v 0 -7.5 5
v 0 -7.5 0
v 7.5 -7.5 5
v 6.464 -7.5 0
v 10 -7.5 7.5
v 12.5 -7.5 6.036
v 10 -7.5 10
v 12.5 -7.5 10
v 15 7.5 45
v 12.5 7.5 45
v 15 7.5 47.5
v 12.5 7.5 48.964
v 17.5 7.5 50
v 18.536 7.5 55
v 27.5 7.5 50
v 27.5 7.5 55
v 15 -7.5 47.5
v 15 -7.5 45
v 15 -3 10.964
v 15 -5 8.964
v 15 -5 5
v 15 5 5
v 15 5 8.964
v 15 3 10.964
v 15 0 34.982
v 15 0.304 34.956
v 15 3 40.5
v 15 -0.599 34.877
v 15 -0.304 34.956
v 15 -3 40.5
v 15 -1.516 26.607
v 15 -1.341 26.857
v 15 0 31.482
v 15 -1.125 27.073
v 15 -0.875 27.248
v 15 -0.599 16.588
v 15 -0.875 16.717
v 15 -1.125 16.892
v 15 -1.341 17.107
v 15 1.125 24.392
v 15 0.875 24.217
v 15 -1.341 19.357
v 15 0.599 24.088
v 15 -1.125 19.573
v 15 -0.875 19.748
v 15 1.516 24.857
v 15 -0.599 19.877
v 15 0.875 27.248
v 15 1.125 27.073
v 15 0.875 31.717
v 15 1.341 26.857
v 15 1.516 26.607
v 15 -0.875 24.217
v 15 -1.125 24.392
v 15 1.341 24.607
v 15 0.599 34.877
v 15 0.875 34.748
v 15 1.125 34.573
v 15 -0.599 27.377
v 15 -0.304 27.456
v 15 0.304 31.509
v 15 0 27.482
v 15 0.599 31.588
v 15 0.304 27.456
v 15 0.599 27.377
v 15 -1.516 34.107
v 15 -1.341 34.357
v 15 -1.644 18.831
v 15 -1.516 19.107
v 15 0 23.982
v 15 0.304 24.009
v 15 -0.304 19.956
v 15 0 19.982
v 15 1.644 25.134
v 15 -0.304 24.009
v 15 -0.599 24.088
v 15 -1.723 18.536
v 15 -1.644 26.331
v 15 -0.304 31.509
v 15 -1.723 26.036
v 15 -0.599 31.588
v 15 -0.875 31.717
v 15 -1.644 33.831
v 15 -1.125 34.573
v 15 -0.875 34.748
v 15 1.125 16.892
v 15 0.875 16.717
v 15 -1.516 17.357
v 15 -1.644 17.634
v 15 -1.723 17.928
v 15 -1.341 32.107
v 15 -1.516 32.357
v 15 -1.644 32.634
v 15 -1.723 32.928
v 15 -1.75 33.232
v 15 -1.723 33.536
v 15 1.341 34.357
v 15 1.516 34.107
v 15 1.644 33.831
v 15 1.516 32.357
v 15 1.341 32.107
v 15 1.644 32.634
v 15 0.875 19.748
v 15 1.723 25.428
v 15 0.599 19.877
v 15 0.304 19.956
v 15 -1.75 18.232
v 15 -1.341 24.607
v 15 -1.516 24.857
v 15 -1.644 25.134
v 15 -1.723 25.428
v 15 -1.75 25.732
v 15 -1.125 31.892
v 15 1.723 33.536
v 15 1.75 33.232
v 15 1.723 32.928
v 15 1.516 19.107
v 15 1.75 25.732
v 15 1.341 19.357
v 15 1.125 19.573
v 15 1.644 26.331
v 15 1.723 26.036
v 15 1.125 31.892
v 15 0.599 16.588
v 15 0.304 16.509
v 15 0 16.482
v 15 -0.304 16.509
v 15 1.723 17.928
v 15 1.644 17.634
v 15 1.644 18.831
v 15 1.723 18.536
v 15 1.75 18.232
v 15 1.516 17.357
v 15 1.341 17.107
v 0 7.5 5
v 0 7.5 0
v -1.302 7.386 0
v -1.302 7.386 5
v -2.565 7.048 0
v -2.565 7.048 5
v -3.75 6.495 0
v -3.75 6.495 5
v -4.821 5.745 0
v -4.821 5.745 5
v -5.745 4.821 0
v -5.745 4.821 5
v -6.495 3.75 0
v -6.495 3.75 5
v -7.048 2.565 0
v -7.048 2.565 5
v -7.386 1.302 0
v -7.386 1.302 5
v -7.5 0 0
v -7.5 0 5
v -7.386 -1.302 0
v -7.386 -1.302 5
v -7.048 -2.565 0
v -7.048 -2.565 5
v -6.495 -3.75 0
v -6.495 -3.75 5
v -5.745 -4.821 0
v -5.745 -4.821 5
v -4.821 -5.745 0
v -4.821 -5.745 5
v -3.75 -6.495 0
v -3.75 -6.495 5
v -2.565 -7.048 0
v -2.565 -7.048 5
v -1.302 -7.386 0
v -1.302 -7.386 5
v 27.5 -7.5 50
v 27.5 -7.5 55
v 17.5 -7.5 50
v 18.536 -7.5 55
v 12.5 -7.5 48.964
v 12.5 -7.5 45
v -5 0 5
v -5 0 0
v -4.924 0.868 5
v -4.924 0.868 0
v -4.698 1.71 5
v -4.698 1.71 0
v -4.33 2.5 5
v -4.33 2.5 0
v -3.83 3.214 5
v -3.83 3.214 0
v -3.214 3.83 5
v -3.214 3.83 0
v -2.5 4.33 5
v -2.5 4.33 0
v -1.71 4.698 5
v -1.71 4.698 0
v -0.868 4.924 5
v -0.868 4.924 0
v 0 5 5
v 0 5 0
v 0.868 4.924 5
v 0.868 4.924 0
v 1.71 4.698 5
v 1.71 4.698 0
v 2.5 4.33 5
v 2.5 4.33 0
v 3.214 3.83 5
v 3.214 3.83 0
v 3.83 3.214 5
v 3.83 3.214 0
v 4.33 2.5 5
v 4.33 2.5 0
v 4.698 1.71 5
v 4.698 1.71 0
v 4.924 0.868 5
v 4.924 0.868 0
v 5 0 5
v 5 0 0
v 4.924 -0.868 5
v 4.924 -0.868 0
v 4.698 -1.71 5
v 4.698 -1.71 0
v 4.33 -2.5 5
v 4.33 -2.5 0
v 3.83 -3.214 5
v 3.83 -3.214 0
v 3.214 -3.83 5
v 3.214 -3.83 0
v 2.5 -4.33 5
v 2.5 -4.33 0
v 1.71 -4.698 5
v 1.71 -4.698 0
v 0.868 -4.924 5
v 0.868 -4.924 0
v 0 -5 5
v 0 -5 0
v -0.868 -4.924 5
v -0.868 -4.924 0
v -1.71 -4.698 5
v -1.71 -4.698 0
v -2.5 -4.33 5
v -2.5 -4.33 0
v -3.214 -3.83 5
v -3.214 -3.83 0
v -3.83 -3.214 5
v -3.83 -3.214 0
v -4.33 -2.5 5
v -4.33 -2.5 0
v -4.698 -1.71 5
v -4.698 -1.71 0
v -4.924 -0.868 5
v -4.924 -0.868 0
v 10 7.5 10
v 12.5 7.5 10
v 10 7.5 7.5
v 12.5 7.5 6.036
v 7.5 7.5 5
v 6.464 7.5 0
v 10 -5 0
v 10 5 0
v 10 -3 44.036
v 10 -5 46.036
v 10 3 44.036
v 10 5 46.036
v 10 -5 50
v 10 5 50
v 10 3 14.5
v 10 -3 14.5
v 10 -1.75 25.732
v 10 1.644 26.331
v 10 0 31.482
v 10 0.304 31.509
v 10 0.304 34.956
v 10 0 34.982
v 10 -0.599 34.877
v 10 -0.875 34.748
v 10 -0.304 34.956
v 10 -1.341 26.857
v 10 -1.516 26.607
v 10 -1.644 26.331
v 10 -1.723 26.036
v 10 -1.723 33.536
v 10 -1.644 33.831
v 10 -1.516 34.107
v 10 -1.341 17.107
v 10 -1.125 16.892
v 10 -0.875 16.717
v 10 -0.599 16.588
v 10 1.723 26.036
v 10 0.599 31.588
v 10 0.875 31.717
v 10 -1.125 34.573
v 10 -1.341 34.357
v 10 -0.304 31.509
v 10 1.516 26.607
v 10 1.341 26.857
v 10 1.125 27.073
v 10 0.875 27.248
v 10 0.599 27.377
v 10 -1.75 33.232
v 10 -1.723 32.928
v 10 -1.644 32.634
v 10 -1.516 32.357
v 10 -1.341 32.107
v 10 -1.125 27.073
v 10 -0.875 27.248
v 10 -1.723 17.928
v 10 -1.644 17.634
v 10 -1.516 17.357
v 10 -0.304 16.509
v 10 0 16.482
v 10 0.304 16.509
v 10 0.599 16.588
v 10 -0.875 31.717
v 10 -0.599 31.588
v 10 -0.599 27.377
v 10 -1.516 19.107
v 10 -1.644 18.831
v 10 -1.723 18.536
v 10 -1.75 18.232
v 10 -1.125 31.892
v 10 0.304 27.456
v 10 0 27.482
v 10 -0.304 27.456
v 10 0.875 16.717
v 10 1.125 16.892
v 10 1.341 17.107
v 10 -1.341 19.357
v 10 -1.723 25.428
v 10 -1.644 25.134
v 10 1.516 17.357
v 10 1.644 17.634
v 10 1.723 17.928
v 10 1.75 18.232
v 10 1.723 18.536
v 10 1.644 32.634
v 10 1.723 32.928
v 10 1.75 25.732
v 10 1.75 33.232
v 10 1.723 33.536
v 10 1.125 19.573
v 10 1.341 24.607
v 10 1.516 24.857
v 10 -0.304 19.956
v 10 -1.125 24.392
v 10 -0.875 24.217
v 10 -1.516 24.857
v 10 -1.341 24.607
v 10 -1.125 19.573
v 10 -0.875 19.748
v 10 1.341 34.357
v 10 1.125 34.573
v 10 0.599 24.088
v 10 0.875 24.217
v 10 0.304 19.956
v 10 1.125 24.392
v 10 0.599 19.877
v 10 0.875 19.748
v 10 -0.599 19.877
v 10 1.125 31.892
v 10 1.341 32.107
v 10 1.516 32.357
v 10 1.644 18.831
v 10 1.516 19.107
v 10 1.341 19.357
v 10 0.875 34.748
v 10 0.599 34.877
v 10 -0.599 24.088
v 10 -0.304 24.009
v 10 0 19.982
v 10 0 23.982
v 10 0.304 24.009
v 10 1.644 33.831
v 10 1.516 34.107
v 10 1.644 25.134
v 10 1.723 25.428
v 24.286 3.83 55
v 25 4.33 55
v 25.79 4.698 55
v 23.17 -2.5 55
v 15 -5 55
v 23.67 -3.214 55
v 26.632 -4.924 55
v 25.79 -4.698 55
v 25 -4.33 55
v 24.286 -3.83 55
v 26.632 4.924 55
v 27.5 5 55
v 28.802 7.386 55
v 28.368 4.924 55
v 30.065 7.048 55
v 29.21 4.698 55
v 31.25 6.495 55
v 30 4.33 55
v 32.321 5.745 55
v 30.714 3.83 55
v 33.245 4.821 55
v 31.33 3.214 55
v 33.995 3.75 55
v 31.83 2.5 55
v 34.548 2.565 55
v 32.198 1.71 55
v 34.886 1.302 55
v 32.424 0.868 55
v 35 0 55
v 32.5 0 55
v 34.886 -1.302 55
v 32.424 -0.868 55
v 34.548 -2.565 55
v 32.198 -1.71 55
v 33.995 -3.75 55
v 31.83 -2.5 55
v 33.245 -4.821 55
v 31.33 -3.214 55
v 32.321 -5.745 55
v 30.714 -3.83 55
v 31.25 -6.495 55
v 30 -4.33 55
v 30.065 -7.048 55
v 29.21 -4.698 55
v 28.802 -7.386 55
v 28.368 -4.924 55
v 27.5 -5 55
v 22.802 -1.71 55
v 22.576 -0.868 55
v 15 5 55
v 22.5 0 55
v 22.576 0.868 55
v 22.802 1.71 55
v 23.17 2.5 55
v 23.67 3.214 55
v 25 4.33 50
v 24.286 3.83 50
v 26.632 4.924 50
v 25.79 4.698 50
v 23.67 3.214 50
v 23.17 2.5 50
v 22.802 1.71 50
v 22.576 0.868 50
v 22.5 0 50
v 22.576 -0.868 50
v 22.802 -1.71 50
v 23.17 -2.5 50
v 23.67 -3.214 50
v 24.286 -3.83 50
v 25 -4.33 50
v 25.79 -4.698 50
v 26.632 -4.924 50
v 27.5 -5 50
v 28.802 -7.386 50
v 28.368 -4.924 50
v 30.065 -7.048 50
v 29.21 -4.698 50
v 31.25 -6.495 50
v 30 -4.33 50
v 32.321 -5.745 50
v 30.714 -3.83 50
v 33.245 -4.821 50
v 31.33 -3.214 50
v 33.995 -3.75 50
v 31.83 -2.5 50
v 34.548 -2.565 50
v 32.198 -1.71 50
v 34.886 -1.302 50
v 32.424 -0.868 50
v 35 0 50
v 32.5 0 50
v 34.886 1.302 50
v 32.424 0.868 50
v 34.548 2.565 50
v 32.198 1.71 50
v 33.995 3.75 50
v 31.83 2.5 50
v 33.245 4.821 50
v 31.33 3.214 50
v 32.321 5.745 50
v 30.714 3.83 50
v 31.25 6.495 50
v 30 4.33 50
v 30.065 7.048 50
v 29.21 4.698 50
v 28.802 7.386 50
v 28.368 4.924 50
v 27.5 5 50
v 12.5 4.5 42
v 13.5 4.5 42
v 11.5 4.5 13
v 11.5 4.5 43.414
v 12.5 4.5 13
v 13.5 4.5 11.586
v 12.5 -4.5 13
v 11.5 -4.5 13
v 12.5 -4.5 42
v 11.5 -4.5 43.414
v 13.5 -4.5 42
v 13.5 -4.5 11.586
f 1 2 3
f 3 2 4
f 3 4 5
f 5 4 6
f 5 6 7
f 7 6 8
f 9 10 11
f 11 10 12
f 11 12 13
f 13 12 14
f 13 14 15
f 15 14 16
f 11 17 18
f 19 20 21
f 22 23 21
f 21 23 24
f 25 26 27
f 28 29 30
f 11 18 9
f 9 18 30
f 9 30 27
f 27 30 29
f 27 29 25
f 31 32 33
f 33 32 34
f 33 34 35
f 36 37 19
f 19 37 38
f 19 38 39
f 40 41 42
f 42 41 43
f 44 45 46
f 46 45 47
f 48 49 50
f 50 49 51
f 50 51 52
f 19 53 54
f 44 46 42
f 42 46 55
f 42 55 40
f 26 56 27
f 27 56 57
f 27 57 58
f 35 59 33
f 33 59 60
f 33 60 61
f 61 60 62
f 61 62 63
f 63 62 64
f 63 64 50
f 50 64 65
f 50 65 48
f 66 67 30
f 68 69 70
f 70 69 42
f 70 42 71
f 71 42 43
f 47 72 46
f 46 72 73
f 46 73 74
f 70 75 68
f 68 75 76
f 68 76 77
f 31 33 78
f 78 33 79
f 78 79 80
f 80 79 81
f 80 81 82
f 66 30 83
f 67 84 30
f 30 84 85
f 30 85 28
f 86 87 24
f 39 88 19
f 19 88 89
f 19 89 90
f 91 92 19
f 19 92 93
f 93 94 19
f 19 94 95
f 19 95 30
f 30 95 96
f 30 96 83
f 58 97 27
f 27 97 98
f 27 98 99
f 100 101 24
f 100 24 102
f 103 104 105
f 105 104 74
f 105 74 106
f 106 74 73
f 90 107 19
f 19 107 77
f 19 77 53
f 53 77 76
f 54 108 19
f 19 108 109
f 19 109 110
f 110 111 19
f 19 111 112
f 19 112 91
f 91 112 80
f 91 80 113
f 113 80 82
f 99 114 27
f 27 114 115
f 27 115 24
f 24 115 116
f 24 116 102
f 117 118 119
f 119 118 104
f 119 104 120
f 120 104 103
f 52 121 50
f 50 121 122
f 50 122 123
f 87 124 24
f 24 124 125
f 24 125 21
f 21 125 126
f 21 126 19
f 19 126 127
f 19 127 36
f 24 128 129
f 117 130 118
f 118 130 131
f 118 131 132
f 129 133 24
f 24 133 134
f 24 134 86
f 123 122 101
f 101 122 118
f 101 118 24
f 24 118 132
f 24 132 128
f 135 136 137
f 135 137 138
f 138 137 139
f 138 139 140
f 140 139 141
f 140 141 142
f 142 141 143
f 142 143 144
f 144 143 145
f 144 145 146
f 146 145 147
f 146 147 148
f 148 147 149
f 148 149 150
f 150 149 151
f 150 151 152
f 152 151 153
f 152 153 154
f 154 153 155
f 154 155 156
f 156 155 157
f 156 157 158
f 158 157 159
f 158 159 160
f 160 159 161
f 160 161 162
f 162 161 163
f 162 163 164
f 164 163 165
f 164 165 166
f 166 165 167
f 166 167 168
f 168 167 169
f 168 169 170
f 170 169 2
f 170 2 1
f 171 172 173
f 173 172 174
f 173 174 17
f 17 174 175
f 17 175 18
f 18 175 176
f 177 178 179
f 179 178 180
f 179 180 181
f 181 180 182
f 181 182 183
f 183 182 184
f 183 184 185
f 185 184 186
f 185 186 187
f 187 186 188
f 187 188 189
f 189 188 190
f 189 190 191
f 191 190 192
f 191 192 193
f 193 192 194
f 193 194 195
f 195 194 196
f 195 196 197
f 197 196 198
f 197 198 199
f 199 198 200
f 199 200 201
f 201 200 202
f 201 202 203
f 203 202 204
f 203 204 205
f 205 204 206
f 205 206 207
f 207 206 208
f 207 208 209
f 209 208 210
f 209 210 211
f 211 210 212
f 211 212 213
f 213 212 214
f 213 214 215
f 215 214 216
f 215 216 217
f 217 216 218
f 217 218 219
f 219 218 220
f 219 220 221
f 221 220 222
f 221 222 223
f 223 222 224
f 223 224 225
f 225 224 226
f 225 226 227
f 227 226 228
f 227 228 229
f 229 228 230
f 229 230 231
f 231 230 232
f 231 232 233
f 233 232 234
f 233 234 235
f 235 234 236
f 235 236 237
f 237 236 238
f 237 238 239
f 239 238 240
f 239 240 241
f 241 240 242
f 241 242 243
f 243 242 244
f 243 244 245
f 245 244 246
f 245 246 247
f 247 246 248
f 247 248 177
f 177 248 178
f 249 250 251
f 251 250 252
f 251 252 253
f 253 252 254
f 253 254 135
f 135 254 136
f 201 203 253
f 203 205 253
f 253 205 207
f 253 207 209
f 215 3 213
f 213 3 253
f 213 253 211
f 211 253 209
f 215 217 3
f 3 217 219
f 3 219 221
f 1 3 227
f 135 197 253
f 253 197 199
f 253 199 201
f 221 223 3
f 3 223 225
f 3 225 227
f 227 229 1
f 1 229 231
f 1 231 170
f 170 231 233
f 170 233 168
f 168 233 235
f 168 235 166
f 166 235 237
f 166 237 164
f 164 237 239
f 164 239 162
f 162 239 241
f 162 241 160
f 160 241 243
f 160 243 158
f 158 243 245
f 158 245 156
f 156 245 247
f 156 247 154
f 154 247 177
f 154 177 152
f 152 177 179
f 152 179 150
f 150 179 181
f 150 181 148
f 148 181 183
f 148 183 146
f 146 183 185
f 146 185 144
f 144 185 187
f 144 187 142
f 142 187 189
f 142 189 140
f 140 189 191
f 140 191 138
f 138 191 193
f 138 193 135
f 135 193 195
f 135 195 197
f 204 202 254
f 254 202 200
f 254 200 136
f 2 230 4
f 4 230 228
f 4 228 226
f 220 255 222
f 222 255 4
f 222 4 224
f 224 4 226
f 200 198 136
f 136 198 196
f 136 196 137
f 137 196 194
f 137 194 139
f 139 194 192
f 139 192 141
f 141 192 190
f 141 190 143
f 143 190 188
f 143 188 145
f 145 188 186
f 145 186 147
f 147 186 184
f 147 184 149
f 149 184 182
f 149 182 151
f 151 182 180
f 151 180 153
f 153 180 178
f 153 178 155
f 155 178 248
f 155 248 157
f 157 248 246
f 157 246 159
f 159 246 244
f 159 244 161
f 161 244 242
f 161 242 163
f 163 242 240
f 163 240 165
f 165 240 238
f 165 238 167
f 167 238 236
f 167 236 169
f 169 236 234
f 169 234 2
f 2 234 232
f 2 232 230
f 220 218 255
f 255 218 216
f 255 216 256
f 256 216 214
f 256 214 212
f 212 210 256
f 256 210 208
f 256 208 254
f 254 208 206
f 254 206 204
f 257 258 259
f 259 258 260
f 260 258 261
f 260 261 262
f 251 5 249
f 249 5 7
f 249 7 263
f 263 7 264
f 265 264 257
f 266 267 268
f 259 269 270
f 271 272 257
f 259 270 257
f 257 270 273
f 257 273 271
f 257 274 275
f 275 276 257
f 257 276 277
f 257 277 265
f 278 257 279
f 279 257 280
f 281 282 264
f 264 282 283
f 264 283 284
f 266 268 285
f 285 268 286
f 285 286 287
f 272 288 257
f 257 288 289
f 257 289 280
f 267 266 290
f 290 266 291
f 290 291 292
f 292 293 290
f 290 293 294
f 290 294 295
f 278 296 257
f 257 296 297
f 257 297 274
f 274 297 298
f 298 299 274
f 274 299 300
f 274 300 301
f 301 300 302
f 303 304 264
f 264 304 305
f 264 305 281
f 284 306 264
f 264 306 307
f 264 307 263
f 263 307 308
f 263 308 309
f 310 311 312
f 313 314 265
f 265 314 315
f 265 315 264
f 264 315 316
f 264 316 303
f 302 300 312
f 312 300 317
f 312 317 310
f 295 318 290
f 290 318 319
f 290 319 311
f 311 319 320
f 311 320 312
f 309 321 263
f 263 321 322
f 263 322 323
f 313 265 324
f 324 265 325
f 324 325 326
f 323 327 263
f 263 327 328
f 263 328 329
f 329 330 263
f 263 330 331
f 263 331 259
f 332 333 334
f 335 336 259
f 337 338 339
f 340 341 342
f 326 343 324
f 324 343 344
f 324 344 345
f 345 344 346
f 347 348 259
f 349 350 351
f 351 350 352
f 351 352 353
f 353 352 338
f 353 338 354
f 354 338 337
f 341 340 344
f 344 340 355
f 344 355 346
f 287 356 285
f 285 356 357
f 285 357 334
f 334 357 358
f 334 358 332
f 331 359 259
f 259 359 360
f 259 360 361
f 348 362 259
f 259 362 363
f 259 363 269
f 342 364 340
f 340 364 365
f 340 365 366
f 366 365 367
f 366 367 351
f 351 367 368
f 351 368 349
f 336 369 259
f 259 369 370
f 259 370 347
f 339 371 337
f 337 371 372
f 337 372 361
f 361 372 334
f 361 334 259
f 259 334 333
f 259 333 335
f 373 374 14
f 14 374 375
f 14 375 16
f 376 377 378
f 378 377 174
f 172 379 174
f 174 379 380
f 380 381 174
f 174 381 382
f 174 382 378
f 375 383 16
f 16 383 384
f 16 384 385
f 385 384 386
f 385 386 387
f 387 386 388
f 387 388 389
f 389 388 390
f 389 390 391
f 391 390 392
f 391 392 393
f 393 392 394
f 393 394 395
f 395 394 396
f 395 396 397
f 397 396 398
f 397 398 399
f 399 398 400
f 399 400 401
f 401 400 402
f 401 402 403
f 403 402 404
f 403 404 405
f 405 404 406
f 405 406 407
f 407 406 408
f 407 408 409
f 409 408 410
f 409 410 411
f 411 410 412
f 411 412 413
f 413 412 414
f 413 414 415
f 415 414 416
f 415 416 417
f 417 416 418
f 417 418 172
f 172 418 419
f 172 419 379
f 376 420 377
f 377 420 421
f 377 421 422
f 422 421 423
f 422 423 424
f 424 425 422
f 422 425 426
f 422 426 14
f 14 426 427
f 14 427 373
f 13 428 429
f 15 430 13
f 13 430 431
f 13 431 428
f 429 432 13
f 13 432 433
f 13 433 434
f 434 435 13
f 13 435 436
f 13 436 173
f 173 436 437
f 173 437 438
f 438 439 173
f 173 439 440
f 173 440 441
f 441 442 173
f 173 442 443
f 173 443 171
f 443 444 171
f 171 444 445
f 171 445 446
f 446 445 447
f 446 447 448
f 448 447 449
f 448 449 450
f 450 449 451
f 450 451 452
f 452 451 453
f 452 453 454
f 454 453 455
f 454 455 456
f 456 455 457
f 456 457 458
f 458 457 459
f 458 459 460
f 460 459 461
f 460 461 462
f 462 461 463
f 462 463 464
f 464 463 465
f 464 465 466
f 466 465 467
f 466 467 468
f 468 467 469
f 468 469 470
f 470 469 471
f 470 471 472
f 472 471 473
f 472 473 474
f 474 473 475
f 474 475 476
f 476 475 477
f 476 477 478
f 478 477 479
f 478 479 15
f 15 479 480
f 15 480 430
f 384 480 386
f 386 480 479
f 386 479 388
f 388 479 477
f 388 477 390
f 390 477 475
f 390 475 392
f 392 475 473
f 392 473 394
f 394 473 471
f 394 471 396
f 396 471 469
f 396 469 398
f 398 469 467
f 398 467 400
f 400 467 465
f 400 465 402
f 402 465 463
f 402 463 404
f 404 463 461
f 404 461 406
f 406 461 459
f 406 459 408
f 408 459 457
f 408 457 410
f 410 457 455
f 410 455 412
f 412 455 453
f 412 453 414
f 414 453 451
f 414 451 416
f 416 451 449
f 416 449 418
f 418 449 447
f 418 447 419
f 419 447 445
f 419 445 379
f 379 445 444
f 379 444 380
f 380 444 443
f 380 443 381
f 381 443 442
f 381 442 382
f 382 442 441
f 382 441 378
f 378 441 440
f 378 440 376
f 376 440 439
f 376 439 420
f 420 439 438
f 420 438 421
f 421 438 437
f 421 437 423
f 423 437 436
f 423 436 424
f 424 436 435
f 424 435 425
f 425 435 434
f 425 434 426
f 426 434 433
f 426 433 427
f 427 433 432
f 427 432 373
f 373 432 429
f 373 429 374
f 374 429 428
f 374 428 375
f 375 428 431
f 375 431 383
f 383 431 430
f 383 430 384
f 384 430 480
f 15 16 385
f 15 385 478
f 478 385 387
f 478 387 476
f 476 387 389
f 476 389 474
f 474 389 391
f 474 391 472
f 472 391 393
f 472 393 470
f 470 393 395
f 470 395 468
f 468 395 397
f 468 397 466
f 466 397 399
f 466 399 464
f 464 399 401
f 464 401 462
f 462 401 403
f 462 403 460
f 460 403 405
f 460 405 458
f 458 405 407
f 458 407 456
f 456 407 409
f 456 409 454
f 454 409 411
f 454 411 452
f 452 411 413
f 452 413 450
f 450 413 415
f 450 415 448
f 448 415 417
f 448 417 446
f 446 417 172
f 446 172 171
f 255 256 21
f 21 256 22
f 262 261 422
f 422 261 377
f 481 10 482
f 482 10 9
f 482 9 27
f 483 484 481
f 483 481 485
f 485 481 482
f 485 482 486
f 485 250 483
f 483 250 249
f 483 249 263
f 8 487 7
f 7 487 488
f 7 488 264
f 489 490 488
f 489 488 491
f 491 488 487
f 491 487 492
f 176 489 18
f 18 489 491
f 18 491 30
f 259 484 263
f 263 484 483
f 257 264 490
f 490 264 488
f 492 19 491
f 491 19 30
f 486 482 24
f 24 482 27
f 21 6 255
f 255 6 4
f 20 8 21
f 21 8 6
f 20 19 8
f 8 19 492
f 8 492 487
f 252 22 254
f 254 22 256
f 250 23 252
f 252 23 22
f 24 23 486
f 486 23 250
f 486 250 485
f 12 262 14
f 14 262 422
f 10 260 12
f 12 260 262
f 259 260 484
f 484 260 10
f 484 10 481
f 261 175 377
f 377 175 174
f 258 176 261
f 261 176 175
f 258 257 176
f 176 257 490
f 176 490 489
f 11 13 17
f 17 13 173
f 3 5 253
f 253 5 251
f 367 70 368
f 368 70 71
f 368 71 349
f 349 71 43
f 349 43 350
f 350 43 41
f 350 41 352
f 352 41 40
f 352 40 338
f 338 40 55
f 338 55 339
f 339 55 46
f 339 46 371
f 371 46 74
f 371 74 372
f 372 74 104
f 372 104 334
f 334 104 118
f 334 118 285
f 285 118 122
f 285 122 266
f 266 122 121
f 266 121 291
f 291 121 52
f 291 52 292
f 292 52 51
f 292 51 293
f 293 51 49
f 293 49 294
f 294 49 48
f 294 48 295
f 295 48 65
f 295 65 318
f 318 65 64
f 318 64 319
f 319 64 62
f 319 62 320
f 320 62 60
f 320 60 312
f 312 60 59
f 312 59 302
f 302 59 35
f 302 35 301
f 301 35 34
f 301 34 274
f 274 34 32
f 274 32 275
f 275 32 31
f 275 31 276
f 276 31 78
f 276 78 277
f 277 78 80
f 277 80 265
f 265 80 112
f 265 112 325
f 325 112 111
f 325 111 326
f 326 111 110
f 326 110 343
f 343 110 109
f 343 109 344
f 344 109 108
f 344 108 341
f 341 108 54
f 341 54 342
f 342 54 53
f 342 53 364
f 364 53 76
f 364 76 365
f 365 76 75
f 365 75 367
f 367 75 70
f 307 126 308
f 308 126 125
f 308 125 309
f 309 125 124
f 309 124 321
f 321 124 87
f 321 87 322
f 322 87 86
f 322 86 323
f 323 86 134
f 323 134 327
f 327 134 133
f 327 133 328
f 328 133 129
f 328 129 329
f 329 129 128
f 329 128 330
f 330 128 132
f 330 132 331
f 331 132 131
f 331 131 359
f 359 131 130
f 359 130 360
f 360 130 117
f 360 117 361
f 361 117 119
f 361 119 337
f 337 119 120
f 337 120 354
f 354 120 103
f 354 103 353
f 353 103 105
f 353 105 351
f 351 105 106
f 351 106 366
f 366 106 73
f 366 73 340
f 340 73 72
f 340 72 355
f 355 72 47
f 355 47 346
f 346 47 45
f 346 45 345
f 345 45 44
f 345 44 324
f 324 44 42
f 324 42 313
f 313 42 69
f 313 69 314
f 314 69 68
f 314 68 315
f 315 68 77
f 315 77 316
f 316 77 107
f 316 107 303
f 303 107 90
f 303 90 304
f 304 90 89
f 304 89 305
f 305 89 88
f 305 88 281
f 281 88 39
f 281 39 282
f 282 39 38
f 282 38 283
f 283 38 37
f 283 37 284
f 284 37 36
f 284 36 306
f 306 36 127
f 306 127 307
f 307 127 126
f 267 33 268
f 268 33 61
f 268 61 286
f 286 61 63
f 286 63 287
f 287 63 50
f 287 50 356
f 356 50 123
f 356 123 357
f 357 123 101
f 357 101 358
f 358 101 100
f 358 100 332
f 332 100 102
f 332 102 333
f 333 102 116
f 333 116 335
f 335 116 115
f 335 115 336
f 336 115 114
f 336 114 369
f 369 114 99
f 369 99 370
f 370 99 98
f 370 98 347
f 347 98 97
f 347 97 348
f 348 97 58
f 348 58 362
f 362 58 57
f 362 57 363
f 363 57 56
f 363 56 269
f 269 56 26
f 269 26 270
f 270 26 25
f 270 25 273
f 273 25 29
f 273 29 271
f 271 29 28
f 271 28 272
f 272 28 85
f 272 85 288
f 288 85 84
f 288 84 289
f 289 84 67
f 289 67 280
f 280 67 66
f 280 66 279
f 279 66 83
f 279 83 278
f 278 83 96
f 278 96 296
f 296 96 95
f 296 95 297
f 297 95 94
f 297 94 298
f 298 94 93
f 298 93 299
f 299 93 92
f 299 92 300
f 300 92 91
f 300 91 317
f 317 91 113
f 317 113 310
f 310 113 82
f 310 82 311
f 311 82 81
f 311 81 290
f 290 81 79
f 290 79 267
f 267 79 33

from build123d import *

# Parameters (mm, degrees)
SKETCH1_R           = 7.5
SKETCH1_R_2         = 5
BOSS_EXTRUDE1_DEPTH = 5
SKETCH2_W           = 5
SKETCH2_H           = 15
BOSS_EXTRUDE2_DEPTH = 50
SKETCH3_W           = 5
SKETCH3_H           = 15
BOSS_EXTRUDE3_DEPTH = 20
SKETCH4_R           = 5
CUT_EXTRUDE1_DEPTH  = 15
FILLET1_R           = 7.5
CHAMFER1_SIZE       = 5
CUT_EXTRUDE2_DEPTH  = 5
CHAMFER2_SIZE       = 1.5
CHAMFER3_SIZE       = 2.5
CHAMFER4_SIZE       = 2.5
SKETCH10_R          = 1.75
CUT_EXTRUDE4_DEPTH  = 10


with BuildPart() as part:
    # Sketch1 → Boss-Extrude1 (new body)
    # profile 1 of 2: a face of its own
    with BuildSketch(Plane.XY):
        Circle(SKETCH1_R)
        Circle(SKETCH1_R_2, mode=Mode.SUBTRACT)
    # profile 2 of 2: a face of its own
    with BuildSketch(Plane.XY):
        with BuildLine():
            Line((15, 7.5), (0, 7.5))
            ThreePointArc((0, 7.5), (5.303300859, 5.303300859), (7.5, 0))
            ThreePointArc((7.5, 0), (5.303300859, -5.303300859), (0, -7.5))
            Line((0, -7.5), (15, -7.5))
            Line((15, -7.5), (15, 7.5))
        make_face()
    extrude(amount=BOSS_EXTRUDE1_DEPTH)

    # Sketch2 → Boss-Extrude2 (add)
    with BuildSketch(Plane.XY.offset(5)):
        with Locations((12.5, 0)):
            Rectangle(SKETCH2_W, SKETCH2_H)
    extrude(amount=BOSS_EXTRUDE2_DEPTH)

    # Sketch3 → Boss-Extrude3 (add)
    with BuildSketch(Plane(origin=(15, 0, 0), x_dir=(0, 0, -1), z_dir=(1, 0, 0))):
        with Locations((-52.5, 0)):
            Rectangle(SKETCH3_W, SKETCH3_H)
    extrude(amount=BOSS_EXTRUDE3_DEPTH)

    # Sketch4 → Cut-Extrude1 (cut)
    with BuildSketch(Plane(origin=(0, 0, 50), x_dir=(-1, 0, 0), z_dir=(0, 0, -1))):
        with Locations(Location((-27.5, 0, 0), (0, 0, 90))):
            Circle(SKETCH4_R)
    extrude(amount=-CUT_EXTRUDE1_DEPTH, mode=Mode.SUBTRACT)

    # Fillet1
    fillet1_edges = [part.edges().sort_by_distance(p)[0] for p in [
        (35, -7.5, 52.5),
        (35, 7.5, 52.5),
    ]]
    fillet(fillet1_edges, radius=FILLET1_R - 0.0001)  # a hair under: the kernel refuses the full size

    # Chamfer1
    chamfer1_edges = [part.edges().sort_by_distance(p)[0] for p in [
        (10, 0, 55),
        (15, 0, 0),
    ]]
    chamfer(chamfer1_edges, length=CHAMFER1_SIZE)

    # Sketch5 → Cut-Extrude2 (cut)
    with BuildSketch(Plane.ZY.offset(-10)):
        Polygon((10, -7.5), (13, -4.5), (42, -4.5), (45, -7.5), align=None)
        Polygon((45, 7.5), (10, 7.5), (13, 4.5), (42, 4.5), align=None)
    extrude(amount=-CUT_EXTRUDE2_DEPTH, mode=Mode.SUBTRACT)

    # Chamfer2
    chamfer2_edges = [part.edges().sort_by_distance(p)[0] for p in [
        (15, -4.5, 27.5),
        (10, -4.5, 27.5),
        (15, 4.5, 27.5),
        (10, 4.5, 27.5),
    ]]
    chamfer(chamfer2_edges, length=CHAMFER2_SIZE)

    # Chamfer3
    chamfer3_edges = [part.edges().sort_by_distance(p)[0] for p in [
        (10, 7.5, 47.5),
        (12.5, 7.5, 52.5),
        (12.5, 7.5, 2.5),
        (10, -7.5, 47.5),
        (12.5, -7.5, 52.5),
        (12.5, -7.5, 2.5),
        (15, 7.5, 7.5),
        (15, -7.5, 7.5),
        (15, -5.25, 12.25),
        (10, -5.25, 42.75),
        (15, 5.25, 12.25),
        (10, 5.25, 42.75),
    ]]
    chamfer(chamfer3_edges, length=CHAMFER3_SIZE)

    # Chamfer4
    chamfer4_edges = [part.edges().sort_by_distance(p)[0] for p in [
        (10, 0, 5),
        (15, 0, 50),
    ]]
    chamfer(chamfer4_edges, length=CHAMFER4_SIZE)

    # Sketch10 → Cut-Extrude4 (cut)
    with BuildSketch(Plane(origin=(15, 0, 0), x_dir=(0, 0, -1), z_dir=(1, 0, 0))):
        with Locations((-25.732233047, 0)):
            Circle(SKETCH10_R)
        with Locations((-18.232233047, 0)):
            Circle(SKETCH10_R)
        with Locations(Location((-33.232233047, 0, 0), (0, 0, 90))):
            Circle(SKETCH10_R)
    extrude(amount=-CUT_EXTRUDE4_DEPTH, mode=Mode.SUBTRACT)


solid = part.part
